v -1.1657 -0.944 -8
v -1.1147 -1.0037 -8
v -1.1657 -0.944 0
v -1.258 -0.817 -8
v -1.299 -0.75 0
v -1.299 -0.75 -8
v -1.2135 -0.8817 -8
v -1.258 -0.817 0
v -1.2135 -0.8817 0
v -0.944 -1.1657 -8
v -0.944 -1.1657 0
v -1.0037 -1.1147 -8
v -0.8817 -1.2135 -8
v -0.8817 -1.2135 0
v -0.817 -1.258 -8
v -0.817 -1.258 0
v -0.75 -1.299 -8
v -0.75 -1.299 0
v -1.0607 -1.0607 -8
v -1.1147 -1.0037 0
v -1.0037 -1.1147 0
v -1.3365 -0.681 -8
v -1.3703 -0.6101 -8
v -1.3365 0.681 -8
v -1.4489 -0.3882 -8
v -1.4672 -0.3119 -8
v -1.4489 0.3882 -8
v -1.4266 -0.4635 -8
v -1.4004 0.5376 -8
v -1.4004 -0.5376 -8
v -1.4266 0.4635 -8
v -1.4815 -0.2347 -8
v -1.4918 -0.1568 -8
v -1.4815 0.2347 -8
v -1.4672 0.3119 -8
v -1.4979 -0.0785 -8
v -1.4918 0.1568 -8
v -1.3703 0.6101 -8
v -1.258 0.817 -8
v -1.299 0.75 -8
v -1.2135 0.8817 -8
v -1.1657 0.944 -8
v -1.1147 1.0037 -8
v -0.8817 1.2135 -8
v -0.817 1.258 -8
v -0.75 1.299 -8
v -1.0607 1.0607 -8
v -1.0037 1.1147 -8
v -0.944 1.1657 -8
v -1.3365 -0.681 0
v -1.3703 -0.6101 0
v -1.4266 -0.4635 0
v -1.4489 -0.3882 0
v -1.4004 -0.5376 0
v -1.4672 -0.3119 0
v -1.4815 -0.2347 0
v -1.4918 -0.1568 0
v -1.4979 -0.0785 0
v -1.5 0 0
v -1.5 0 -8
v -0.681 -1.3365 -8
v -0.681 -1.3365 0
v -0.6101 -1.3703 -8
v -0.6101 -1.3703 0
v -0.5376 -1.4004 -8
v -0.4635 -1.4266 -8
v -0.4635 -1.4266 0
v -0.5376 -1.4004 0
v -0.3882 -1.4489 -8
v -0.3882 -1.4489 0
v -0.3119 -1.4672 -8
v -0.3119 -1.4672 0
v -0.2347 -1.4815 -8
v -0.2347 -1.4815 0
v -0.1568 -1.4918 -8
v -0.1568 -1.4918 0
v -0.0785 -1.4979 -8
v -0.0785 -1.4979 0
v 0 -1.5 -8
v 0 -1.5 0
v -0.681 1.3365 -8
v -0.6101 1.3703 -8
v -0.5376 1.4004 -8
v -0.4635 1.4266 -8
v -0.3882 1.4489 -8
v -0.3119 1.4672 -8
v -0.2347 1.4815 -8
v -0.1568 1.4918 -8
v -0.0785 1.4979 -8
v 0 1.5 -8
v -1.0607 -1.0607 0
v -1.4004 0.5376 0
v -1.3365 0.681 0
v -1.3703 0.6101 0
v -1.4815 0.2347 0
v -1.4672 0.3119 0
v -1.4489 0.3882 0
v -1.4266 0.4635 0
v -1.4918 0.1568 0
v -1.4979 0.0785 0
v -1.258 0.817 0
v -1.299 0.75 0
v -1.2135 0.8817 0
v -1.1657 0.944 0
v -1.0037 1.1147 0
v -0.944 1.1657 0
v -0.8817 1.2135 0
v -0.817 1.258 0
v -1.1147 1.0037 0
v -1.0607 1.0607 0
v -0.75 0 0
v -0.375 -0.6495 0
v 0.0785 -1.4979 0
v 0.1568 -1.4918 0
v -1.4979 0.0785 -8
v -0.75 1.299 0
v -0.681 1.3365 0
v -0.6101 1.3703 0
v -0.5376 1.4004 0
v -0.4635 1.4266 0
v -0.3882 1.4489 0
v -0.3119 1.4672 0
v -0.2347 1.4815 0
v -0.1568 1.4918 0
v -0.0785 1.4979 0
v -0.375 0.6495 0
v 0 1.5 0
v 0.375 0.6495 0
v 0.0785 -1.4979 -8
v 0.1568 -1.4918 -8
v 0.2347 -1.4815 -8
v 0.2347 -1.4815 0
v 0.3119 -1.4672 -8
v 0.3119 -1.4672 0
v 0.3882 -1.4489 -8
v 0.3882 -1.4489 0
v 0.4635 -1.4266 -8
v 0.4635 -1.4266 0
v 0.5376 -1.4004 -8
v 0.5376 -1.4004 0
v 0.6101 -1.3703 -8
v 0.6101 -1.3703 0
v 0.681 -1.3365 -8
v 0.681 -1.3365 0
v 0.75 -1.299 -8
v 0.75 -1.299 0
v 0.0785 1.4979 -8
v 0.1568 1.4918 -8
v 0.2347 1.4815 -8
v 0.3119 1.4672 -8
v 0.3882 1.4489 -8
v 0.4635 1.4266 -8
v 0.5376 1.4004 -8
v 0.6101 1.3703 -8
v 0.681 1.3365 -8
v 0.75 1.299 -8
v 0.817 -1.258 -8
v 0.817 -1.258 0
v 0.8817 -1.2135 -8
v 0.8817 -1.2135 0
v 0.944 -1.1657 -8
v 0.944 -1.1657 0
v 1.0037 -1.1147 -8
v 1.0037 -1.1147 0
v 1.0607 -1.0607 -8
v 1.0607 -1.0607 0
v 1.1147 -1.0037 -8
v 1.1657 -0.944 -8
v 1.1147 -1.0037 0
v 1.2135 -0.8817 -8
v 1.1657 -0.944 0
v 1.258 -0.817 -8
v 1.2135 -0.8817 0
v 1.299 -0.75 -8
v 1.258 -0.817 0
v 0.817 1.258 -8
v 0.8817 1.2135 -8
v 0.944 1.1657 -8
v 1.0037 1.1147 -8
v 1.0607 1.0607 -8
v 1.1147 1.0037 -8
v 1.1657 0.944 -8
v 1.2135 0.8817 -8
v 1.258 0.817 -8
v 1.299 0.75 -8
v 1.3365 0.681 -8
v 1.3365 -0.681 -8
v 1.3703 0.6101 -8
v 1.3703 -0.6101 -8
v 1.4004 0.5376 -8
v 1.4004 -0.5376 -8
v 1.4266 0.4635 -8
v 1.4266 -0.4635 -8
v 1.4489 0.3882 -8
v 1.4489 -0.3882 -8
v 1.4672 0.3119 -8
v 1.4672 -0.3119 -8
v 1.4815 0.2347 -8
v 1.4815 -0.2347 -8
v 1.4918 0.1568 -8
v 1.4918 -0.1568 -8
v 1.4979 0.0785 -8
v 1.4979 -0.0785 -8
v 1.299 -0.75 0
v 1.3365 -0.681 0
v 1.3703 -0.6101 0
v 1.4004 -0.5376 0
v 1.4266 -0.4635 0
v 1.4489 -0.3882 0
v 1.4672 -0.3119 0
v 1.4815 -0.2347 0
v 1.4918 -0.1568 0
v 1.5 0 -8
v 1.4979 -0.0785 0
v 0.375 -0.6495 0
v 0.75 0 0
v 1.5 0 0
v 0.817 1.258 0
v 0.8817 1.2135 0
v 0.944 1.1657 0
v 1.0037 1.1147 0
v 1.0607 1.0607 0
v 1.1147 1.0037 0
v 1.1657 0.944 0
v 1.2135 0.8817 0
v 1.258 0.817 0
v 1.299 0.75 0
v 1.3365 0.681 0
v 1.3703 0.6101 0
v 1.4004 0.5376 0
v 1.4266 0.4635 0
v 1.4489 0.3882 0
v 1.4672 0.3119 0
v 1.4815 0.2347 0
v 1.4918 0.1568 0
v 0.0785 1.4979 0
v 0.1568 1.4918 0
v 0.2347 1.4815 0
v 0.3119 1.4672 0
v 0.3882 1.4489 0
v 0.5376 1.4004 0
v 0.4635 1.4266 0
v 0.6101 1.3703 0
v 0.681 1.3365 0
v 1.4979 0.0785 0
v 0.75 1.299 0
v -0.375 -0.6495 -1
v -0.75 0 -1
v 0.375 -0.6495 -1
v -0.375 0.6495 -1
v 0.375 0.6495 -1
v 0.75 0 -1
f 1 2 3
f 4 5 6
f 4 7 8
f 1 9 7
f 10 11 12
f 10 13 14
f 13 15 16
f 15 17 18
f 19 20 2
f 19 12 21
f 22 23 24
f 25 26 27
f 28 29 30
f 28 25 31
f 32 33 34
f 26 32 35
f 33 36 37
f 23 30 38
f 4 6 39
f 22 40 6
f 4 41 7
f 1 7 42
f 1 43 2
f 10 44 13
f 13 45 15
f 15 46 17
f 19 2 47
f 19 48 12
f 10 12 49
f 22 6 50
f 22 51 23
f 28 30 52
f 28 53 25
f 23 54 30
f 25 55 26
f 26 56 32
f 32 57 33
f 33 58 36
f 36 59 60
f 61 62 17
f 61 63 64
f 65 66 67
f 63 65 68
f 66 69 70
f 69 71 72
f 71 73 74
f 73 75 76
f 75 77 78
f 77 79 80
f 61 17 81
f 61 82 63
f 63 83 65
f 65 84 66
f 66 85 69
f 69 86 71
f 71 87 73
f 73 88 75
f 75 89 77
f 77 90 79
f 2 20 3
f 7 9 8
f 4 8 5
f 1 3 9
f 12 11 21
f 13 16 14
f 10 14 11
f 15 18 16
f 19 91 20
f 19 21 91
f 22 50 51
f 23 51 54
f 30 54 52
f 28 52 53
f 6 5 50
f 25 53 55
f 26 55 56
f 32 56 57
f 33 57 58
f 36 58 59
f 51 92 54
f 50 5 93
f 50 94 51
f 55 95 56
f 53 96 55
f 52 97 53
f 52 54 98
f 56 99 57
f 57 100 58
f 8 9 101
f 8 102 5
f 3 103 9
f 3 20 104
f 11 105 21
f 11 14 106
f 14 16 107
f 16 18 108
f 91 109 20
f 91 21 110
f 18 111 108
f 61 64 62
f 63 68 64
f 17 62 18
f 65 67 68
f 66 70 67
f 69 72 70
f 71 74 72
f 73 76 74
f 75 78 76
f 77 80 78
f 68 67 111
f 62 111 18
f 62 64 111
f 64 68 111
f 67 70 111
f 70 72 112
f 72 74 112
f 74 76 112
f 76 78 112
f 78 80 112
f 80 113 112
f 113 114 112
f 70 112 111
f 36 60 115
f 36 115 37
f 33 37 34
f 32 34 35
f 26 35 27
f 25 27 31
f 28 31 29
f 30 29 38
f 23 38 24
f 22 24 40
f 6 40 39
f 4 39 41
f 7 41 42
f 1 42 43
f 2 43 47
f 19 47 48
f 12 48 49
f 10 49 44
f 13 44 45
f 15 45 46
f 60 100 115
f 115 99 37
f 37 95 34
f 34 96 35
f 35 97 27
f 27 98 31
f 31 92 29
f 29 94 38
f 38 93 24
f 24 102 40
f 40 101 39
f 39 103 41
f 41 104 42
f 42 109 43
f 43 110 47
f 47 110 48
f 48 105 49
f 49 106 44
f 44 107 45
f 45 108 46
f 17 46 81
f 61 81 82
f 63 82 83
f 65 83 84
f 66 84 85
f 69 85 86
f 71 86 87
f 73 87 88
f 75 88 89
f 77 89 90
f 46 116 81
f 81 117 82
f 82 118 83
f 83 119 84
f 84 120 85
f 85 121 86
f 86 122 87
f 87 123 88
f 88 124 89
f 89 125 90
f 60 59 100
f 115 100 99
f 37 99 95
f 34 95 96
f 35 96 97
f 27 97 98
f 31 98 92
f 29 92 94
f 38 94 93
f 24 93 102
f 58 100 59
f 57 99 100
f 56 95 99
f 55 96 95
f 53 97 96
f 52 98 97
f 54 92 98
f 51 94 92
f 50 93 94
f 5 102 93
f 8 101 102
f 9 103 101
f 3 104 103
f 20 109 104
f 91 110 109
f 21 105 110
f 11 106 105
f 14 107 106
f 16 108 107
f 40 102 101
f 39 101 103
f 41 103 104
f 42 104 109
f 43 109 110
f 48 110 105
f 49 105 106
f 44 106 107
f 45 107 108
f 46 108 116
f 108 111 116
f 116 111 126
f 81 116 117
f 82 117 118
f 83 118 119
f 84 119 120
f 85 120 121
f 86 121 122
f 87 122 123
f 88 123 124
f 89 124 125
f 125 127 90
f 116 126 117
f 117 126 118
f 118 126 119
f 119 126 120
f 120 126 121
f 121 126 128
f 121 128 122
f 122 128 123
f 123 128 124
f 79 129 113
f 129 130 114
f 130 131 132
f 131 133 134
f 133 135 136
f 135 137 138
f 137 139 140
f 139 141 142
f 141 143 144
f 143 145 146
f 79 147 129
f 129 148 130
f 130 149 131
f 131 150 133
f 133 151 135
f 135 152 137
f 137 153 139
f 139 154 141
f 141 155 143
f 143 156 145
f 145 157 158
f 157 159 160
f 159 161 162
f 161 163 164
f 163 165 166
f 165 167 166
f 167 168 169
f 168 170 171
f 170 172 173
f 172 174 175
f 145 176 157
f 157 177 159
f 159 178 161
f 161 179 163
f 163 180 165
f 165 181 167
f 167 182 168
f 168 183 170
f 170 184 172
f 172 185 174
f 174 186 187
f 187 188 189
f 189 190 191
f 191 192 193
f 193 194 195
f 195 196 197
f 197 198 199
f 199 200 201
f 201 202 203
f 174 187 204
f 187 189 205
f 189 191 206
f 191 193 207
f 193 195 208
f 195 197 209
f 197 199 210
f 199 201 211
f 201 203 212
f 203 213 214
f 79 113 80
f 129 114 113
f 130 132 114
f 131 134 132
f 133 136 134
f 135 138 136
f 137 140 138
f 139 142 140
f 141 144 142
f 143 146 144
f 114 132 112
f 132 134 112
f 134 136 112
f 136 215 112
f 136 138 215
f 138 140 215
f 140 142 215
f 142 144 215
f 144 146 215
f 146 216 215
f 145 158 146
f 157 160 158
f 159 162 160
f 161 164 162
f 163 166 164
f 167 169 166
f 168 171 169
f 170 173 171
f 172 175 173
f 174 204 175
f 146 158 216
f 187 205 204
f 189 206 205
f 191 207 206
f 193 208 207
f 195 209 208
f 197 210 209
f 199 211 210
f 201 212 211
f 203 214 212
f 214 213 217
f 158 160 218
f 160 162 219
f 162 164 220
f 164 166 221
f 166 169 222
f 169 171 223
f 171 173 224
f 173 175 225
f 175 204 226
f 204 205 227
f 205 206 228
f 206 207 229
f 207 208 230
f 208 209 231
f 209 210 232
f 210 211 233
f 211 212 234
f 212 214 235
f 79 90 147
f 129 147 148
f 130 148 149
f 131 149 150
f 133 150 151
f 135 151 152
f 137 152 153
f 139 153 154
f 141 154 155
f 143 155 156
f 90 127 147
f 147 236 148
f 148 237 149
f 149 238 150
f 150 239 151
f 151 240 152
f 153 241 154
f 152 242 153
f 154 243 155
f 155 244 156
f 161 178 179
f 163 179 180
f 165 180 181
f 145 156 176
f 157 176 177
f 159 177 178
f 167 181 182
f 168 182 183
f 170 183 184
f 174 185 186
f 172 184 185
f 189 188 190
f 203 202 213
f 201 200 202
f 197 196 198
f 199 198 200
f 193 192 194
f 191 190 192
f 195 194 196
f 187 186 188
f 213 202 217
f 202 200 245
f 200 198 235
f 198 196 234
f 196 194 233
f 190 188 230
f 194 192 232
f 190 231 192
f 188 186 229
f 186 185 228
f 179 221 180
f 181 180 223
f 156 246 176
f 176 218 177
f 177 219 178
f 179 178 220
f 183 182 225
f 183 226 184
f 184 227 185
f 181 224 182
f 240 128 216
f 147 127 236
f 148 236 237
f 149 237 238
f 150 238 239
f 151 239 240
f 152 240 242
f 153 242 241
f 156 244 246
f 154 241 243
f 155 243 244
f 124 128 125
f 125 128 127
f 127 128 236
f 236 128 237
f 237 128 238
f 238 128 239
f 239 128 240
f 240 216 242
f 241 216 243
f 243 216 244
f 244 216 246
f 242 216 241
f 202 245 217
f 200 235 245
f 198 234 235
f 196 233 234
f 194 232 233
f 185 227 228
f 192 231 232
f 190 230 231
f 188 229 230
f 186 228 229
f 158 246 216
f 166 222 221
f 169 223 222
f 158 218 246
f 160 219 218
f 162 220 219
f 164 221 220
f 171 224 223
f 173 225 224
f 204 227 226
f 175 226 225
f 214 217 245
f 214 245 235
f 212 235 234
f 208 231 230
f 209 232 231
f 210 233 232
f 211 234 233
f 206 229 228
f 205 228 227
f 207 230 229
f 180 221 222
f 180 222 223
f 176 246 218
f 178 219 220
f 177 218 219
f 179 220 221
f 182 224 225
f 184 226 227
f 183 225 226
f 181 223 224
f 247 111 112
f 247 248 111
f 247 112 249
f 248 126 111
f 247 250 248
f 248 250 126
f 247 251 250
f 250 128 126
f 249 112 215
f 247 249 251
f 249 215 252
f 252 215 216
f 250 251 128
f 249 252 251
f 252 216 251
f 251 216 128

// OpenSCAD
// file: C:/od/OneDrive/Documents/ChatGPT/oomlout_oobb_part_motor_gearbox_wave_drive_version_5/parts/oobb_part_motor_gearbox_wave_drive_version_5_12_to_1_reduction/compact_helpers.scad
// Reusable native geometry helpers.
function polar(r,a)=[r*cos(a),r*sin(a)];
function rotate_point(p,a)=[p[0]*cos(a)-p[1]*sin(a),p[0]*sin(a)+p[1]*cos(a)];
function profile_point(t)=let(
    s=sqrt(pow(pitch_radius,2)-pow(eccentricity*sin(cavity_count*t),2)),
    r=eccentricity*cos(cavity_count*t)+s,
    xi=atan2(eccentricity*cavity_count*sin(cavity_count*t),s),
    rr=roller_radius+profile_clearance)
    [r*cos(t)+rr*cos(t+xi),r*sin(t)+rr*sin(t+xi)];
function profile_points(upper=false)=[for(i=[0:cavity_count*profile_samples_per_cavity-1])
    rotate_point(profile_point(360*i/(cavity_count*profile_samples_per_cavity)),0)];
function roller_position(i,a,upper=false)=let(
    t=-a/roller_count+360*i/roller_count,
    rel=t-a-(upper?180:0),
    r=eccentricity*cos(rel)+sqrt(pow(pitch_radius,2)-pow(eccentricity*sin(rel),2))) polar(r,t);
module tube(ro,ri,h) { difference() { cylinder(r=ro,h=h); translate([0,0,-eps]) cylinder(r=ri,h=h+2*eps); } }
module screw_hole(size,h) { scale([1,1,h]) { if(size=="m2") oobb_hole_m2(); if(size=="m3") oobb_hole_m3(); if(size=="m6") oobb_hole_m6(); } }
module socket_recess(size,depth) {
    // OOBB socket head starts at the under-head plane and extends outward.
    scale([1,1,depth/(size=="m3"?3.2:2.2)]) {
        if(size=="m3") oobb_socket_m3(); else oobb_socket_m2();
    }
}
module at_mounts(points) { for(p=points) translate([p[0],p[1],0]) children(); }
module shaft_cut(h,fit=shaft_fit_clearance) {
    linear_extrude(h) intersection() {
        circle(r=input_shaft_diameter/2+fit);
        translate([-10,-10]) square([10+input_shaft_diameter/2-input_shaft_flat_depth+fit,20]);
    }
}
module rounded_rectangle_plate(size=[119,119,3],radius=1.5) {
    hull() for(x=[-1,1],y=[-1,1]) translate([x*(size[0]/2-radius),y*(size[1]/2-radius),0]) cylinder(r=radius,h=size[2]);
}
module grid_cuts(h) {
    // Actual OOBB grid centres: six units are centred on half-pitch offsets.
    for(i=[0:base_width-1],j=[0:base_height-1])
        let(x=(i-(base_width-1)/2)*oobb_grid_pitch,y=(j-(base_height-1)/2)*oobb_grid_pitch)
        if(sqrt(x*x+y*y)>housing_radius+3.5)
            translate([x,y,-eps]) screw_hole("m6",h+2*eps);
}
module wave_generator() {
    render(convexity=20) difference() {
        tube(wave_radius,12.6,wave_height);
        translate([0,0,wave_seat_z]) cylinder(r=13.5+bearing_seat_clearance,h=wave_height);
        translate([0,0,wave_height-wave_cap_depth]) cylinder(r=22.15,h=wave_cap_depth+eps);
        at_mounts(wave_mounts) {
            translate([0,0,-eps]) screw_hole("m3",wave_height+2*eps);
            translate([0,0,wave_nut_z]) scale([1,1,(wave_height-wave_cap_depth-wave_nut_z+eps)/2.7]) oobb_nut_m3();
        }
    }
}
module wave_cap() {
    render(convexity=20) difference() {
        tube(22,12.6,wave_cap_depth);
        at_mounts(wave_mounts) {
            translate([0,0,-eps]) screw_hole("m3",wave_cap_depth+2*eps);
            translate([0,0,wave_cap_depth-wave_head_recess]) socket_recess("m3",wave_head_recess+eps);
        }
    }
}
// file: C:/od/OneDrive/Documents/ChatGPT/oomlout_oobb_part_motor_gearbox_wave_drive_version_5/parts/oobb_part_motor_gearbox_wave_drive_version_5_12_to_1_reduction/oobb_hardware.scad
module oobb_rounded_rectangle_edges(size, radius, radius_top, radius_bottom) {
      rt=radius_top; rb=radius_bottom; depth=size[2]; n=16;
      lower=rb==0 ? [[radius,0]] :
        [for(i=[0:n]) let(a=-90+90*i/n) [radius-rb+rb*cos(a),rb+rb*sin(a)]];
      upper=rt==0 ? [[radius,depth]] :
        [for(i=[0:n]) let(a=90*i/n) [radius-rt+rt*cos(a),depth-rt+rt*sin(a)]];
      hull() for(x=[-size[0]/2+radius,size[0]/2-radius])
        for(y=[-size[1]/2+radius,size[1]/2-radius])
          translate([x,y,0]) rotate_extrude()
            polygon(concat([[0,0]],lower,upper,[[0,depth]]));
    }
// Generated from installed OOBB v5. All primitives use overhang=True.

module oobb_motor_plate_body() {


difference() {
	union() {
		translate(v = [0, 0, 0]) {
			rotate(a = [0, 0, 0]) {
				difference() {
					union() {
						oobb_rounded_rectangle_edges(radius = 1.5, radius_bottom = 1.5, radius_top = 1.5, size = [89.0, 89.0, 4.0]);
					}
					union();
				}
			}
		}
	}
	union();
}

}

module oobb_hole_m2() {


difference() {
	union() {
		cylinder(h = 1, r = 1.35);
	}
	union();
}

}

module oobb_hole_m3() {


difference() {
	union() {
		cylinder(h = 1, r = 1.8);
	}
	union();
}

}

module oobb_hole_m6() {


difference() {
	union() {
		cylinder(h = 1, r = 3.25);
	}
	union();
}

}

module oobb_nut_m2() {


difference() {
	union() {
		translate(v = [0, 0, 0]) {
			rotate(a = [0, 0, 0]) {
				difference() {
					union() {
						linear_extrude(height = 2.2) {
							polygon(points = [[2.4234, 0.0], [1.2117000000000002, 2.0987259635312085], [-1.2116999999999996, 2.0987259635312085], [-2.4234, 2.967809053053696e-16], [-1.211700000000001, -2.098725963531208], [1.2116999999999984, -2.0987259635312094]]);
						}
						translate(v = [-1.25, -2.75, -0.3]) {
							cube(size = [2.5, 5.5, 0.3]);
						}
						translate(v = [-1.25, -1.25, -0.6]) {
							cube(size = [2.5, 2.5, 0.3]);
						}
						translate(v = [-1.25, -2.75, 2.2]) {
							cube(size = [2.5, 5.5, 0.3]);
						}
						translate(v = [-1.25, -1.25, 2.5]) {
							cube(size = [2.5, 2.5, 0.3]);
						}
					}
					union();
				}
			}
		}
	}
	union();
}

}

module oobb_socket_m2() {


difference() {
	union() {
		translate(v = [0, 0, 0]) {
			rotate(a = [0, 0, 0]) {
				difference() {
					union() {
						cylinder(h = 2.2, r = 2.1);
						translate(v = [-1.25, -2.75, -0.3]) {
							cube(size = [2.5, 5.5, 0.3]);
						}
						translate(v = [-1.25, -1.25, -0.6]) {
							cube(size = [2.5, 2.5, 0.3]);
						}
					}
					union();
				}
			}
		}
	}
	union();
}

}

module oobb_nut_m3() {


difference() {
	union() {
		translate(v = [0, 0, 0]) {
			rotate(a = [0, 0, 0]) {
				difference() {
					union() {
						linear_extrude(height = 2.7) {
							polygon(points = [[3.4619999999999997, 0.0], [1.7310000000000003, 2.9981799479017264], [-1.7309999999999992, 2.9981799479017264], [-3.4619999999999997, 4.2397272186481365e-16], [-1.7310000000000014, -2.998179947901726], [1.7309999999999977, -2.9981799479017277]]);
						}
						translate(v = [-1.75, -3.25, -0.3]) {
							cube(size = [3.5, 6.5, 0.3]);
						}
						translate(v = [-1.75, -1.75, -0.6]) {
							cube(size = [3.5, 3.5, 0.3]);
						}
						translate(v = [-1.75, -3.25, 2.7]) {
							cube(size = [3.5, 6.5, 0.3]);
						}
						translate(v = [-1.75, -1.75, 3.0]) {
							cube(size = [3.5, 3.5, 0.3]);
						}
					}
					union();
				}
			}
		}
	}
	union();
}

}

module oobb_socket_m3() {


difference() {
	union() {
		translate(v = [0, 0, 0]) {
			rotate(a = [0, 0, 0]) {
				difference() {
					union() {
						cylinder(h = 3.2, r = 3.0);
						translate(v = [-1.75, -3.25, -0.3]) {
							cube(size = [3.5, 6.5, 0.3]);
						}
						translate(v = [-1.75, -1.75, -0.6]) {
							cube(size = [3.5, 3.5, 0.3]);
						}
					}
					union();
				}
			}
		}
	}
	union();
}

}

module oobb_nut_m6() {


difference() {
	union() {
		translate(v = [0, 0, 0]) {
			rotate(a = [0, 0, 0]) {
				difference() {
					union() {
						linear_extrude(height = 5.2) {
							polygon(points = [[5.914249999999999, 0.0], [2.957125, 5.1218907443321156], [-2.9571249999999982, 5.1218907443321156], [-5.914249999999999, 7.242867331857232e-16], [-2.9571250000000022, -5.121890744332115], [2.9571249999999956, -5.121890744332118]]);
						}
						translate(v = [-2.875, -5.0, -0.3]) {
							cube(size = [5.75, 10, 0.3]);
						}
						translate(v = [-2.875, -2.875, -0.6]) {
							cube(size = [5.75, 5.75, 0.3]);
						}
						translate(v = [-2.875, -5.0, 5.2]) {
							cube(size = [5.75, 10, 0.3]);
						}
						translate(v = [-2.875, -2.875, 5.5]) {
							cube(size = [5.75, 5.75, 0.3]);
						}
					}
					union();
				}
			}
		}
	}
	union();
}

}
// file: C:/od/OneDrive/Documents/ChatGPT/oomlout_oobb_part_motor_gearbox_wave_drive_version_5/parts/oobb_part_motor_gearbox_wave_drive_version_5_12_to_1_reduction/parameters.scad
// Generated by working_scad.py. Edit the Python recipe to persist changes.
style = "version_5";
reduction = 12;
bearing_output = "6810";
bearing_wave = "6704";
roller_diameter = 7.0;
roller_bore_diameter = 3.2;
roller_length = 12.0;
roller_material = "nylon";
roller_bank_count = 1;
motor_plate_depth = 4.0;
motor_body_depth = 40.0;
motor_shaft_length = 24.0;
motor_hole_pitch = 31.0;
motor_thread_depth = 6.0;
motor_pilot_diameter = 22.0;
motor_pilot_height = 2.0;
output_holder_wall = 7.0;
max_screw_length = 35.0;
eccentricity = 0.75;
wave_radius = 23.25;
profile_clearance = 0.15;
roller_slot_clearance = 0.3;
roller_end_clearance = 0.3;
cage_wall = 4.0;
cage_plate_depth = 3.0;
bearing_seat_clearance = 0.1;
journal_clearance = 0.05;
bearing_axial_clearance = 0.2;
output_plate_diameter = 65.0;
output_plate_depth = 6.0;
output_grid_pitch = 15.0;
output_face_clearance = 0.3;
output_socket_recess = 4.0;
output_screw_length = 16;
output_nut_depth = 5.2;
output_nut_height = 5.0;
motor_shaft_end_clearance = 0.5;
base_width = 6;
base_height = 6;
oobb_grid_pitch = 15.0;
oobb_size_allowance = 1.0;
base_edge_radius = 1.5;
housing_flange_corner_radius = 1.5;
housing_screw_pitch_radius = 35.5;
housing_screw_count = 6;
input_shaft_diameter = 5.0;
input_shaft_flat_depth = 0.5;
shaft_fit_clearance = 0.1;
cage_screw_count = 4;
profile_samples_per_cavity = 100;
circle_fragments = 120;
overhang = true;
run_scad = true;
run_solidcraft = false;
generate_stl = true;
generate_previews = true;
generate_renders = true;
validate_geometry = true;
package_outputs = true;
render_threads = 8;
variant = "default";
// main file
include <C:/od/OneDrive/Documents/ChatGPT/oomlout_oobb_part_motor_gearbox_wave_drive_version_5/parts/oobb_part_motor_gearbox_wave_drive_version_5_12_to_1_reduction/parameters.scad>
include <C:/od/OneDrive/Documents/ChatGPT/oomlout_oobb_part_motor_gearbox_wave_drive_version_5/parts/oobb_part_motor_gearbox_wave_drive_version_5_12_to_1_reduction/oobb_hardware.scad>
include <C:/od/OneDrive/Documents/ChatGPT/oomlout_oobb_part_motor_gearbox_wave_drive_version_5/parts/oobb_part_motor_gearbox_wave_drive_version_5_12_to_1_reduction/geometry.scad>
difference() { translate([0,0,-8]) cylinder(r=1.5,h=8); translate([0,0,-1]) cylinder(r=0.75,h=1.01,$fn=6); }
